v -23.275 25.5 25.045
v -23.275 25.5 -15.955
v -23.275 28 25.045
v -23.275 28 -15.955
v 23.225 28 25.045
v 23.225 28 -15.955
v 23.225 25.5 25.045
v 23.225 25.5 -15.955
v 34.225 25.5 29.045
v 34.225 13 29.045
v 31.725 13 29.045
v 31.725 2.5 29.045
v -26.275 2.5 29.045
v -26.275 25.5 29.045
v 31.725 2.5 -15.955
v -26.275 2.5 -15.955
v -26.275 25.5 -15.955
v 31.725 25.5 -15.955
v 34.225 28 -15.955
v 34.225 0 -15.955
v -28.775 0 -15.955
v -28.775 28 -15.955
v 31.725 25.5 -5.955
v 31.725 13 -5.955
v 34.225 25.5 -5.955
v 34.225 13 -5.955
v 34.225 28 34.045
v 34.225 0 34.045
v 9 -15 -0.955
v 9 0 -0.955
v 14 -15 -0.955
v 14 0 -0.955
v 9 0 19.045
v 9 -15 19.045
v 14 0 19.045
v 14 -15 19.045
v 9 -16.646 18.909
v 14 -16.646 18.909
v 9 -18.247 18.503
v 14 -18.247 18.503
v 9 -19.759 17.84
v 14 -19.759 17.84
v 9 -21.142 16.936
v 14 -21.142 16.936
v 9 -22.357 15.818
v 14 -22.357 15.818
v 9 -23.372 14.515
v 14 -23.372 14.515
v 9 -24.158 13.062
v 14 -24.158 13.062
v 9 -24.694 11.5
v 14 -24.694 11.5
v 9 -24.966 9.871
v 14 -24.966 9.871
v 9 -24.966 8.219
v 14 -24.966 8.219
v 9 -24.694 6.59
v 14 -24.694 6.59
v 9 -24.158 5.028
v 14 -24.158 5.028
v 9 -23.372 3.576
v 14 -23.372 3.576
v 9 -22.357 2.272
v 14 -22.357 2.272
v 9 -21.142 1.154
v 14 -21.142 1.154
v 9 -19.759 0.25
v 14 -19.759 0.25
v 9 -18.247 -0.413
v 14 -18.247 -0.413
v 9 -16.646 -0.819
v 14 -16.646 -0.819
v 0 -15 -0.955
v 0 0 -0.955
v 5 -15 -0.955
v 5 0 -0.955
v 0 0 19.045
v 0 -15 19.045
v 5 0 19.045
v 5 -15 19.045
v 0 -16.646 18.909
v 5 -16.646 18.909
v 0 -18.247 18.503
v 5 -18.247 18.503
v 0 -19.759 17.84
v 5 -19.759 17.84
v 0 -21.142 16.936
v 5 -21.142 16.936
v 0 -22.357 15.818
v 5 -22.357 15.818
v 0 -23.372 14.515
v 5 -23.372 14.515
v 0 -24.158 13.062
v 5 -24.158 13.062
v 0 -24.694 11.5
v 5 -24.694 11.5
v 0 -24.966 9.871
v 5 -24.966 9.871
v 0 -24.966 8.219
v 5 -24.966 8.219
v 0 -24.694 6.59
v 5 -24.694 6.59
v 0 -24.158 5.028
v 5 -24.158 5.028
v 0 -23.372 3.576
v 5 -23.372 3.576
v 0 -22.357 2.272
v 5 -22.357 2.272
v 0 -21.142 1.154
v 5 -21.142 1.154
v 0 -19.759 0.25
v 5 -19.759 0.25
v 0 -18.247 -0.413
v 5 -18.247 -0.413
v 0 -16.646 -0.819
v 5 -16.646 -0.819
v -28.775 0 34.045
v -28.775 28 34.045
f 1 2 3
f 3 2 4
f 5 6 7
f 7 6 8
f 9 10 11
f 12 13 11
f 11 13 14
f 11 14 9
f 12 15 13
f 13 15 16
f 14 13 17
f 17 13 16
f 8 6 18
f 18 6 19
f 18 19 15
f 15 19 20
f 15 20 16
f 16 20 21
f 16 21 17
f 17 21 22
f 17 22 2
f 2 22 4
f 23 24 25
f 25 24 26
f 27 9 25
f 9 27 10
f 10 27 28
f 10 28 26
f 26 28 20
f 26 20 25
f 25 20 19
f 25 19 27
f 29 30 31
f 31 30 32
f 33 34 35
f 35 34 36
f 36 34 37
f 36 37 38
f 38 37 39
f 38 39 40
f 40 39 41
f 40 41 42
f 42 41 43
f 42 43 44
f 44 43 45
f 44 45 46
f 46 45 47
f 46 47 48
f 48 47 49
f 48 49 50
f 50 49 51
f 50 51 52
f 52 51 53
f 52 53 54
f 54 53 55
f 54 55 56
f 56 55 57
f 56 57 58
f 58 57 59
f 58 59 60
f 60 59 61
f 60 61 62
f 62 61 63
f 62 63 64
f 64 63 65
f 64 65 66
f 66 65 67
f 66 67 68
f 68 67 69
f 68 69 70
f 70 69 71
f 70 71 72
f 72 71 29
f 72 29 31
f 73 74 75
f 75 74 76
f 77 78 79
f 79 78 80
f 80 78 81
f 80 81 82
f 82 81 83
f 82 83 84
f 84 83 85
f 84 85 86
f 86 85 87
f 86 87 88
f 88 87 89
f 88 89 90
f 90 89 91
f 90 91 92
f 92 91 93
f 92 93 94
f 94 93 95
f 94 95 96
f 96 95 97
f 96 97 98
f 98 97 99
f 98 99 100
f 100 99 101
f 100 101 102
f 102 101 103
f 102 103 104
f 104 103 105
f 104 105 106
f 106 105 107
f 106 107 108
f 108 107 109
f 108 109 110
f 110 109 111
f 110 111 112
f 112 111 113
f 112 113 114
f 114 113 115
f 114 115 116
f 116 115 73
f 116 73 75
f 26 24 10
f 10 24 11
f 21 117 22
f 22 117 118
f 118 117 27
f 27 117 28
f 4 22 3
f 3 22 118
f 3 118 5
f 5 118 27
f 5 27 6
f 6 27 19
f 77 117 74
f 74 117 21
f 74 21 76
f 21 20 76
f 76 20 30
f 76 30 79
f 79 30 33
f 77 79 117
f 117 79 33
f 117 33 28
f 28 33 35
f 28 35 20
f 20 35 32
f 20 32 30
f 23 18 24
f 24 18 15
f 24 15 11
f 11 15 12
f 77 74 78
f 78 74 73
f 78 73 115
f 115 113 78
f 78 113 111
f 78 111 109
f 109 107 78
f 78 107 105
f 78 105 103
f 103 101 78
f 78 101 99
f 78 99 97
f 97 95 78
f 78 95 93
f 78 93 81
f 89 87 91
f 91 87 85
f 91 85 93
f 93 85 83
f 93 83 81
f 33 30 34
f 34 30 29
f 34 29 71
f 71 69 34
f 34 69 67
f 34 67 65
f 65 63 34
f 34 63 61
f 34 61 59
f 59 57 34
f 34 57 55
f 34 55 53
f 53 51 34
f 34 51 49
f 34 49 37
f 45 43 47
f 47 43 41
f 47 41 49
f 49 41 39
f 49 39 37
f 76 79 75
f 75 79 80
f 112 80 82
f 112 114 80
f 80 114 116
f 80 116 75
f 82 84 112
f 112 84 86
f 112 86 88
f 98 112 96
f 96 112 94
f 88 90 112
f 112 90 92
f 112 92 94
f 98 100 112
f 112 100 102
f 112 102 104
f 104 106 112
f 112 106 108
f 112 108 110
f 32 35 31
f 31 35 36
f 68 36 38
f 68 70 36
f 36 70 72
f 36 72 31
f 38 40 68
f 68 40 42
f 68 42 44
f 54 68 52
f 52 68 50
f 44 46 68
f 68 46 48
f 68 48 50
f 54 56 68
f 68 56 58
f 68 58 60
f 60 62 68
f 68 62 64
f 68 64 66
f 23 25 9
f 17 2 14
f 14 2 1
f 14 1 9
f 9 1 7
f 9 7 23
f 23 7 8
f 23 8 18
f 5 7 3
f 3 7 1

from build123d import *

# Parameters (mm, degrees)
SKETCH1_W            = 63
SKETCH1_H            = 50
BOSS_EXTRUDE1_DEPTH  = 28
CUT_EXTRUDE1_START   = -5
SKETCH2_W            = 60
SKETCH2_H            = 20
CUT_EXTRUDE1_DEPTH   = 62.748305375
CUT_EXTRUDE2_REACH   = 57.807
SKETCH3_W            = 40
SKETCH3_H            = 35
CUT_EXTRUDE3_REACH   = 57.807
SKETCH4_W            = 23
SKETCH4_H            = 25
SKETCH5_W            = 2.5
SKETCH5_H            = 25.5
BOSS_EXTRUDE2_DEPTH  = 35
SKETCH6_W            = 30
SKETCH6_H            = 15
CUT_EXTRUDE4_DEPTH   = 2.5
SKETCH7_W            = 2.5
SKETCH7_H            = 10.5
BOSS_EXTRUDE3_DEPTH  = 25
SKETCH8_W            = 5
SKETCH8_H            = 15
BOSS_EXTRUDE4_DEPTH  = 2.5
SKETCH9_W            = 10
SKETCH9_H            = 5.5
BOSS_EXTRUDE5_DEPTH  = 2.5
BOSS_EXTRUDE6_DEPTH  = 20
CUT_EXTRUDE6_START   = -5
CUT_EXTRUDE6_DEPTH   = 4
CUT_EXTRUDE8_START   = -5
CUT_EXTRUDE8_DEPTH   = 3
CUT_EXTRUDE9_DEPTH   = 64.548692085
SKETCH16_W           = 60.5
SKETCH16_H           = 5.5
CUT_EXTRUDE10_DEPTH  = 9
SKETCH17_W           = 10
SKETCH17_H           = 5.5
CUT_EXTRUDE11_DEPTH  = 18.5
SKETCH18_W           = 4.5
SKETCH18_H           = 5.5
BOSS_EXTRUDE7_DEPTH  = 34
SKETCH23_W           = 58
SKETCH23_H           = 45
CUT_EXTRUDE14_DEPTH  = 23
SKETCH24_W           = 2.5
SKETCH24_H           = 35
CUT_EXTRUDE15_DEPTH  = 3
BOSS_EXTRUDE9_START  = 56
SKETCH25_W           = 44
SKETCH25_H           = 2.5
BOSS_EXTRUDE9_DEPTH  = 3
SKETCH26_W           = 10
SKETCH26_H           = 20
BOSS_EXTRUDE10_DEPTH = 2.5
SKETCH27_W           = 44
SKETCH27_H           = 2.5
BOSS_EXTRUDE11_DEPTH = 6.5
SKETCH28_W           = 46.5
SKETCH28_H           = 2.5
BOSS_EXTRUDE12_DEPTH = 7
SKETCH29_W           = 46.5
SKETCH29_H           = 2.5
CUT_EXTRUDE16_DEPTH  = 4


with BuildPart() as part:
    # Sketch1 → Boss-Extrude1 (new body)
    with BuildSketch(Plane(origin=(0, 0, 0), x_dir=(1, 0, 0), z_dir=(0, 1, 0))):
        with Locations((2.724790291, -9.045064868)):
            Rectangle(SKETCH1_W, SKETCH1_H)
    extrude(amount=BOSS_EXTRUDE1_DEPTH)

    # Sketch2 → Cut-Extrude1 (cut, through all)
    with BuildSketch(Plane.XY.offset(34.045064868).offset(CUT_EXTRUDE1_START)):
        with Locations((1.724790291, 12.5)):
            Rectangle(SKETCH2_W, SKETCH2_H)
    extrude(amount=-CUT_EXTRUDE1_DEPTH, mode=Mode.SUBTRACT)

    # Cut-Extrude2: up to this face of the body (flat: up to its plane)
    cut_extrude2_end = Plane(part.part.faces().sort_by_distance((1.724790291, 2.5, 6.545064868))[0])
    # Sketch3 → Cut-Extrude2 (cut, up to the picked face)
    with BuildSketch(Plane(origin=(0, 28, 0), x_dir=(1, 0, 0), z_dir=(0, 1, 0)), mode=Mode.PRIVATE) as cut_extrude2_sk1:
        with Locations((-8.775209709, -1.545064868)):
            Rectangle(SKETCH3_W, SKETCH3_H)
    cut_extrude2_tool1 = split(extrude(cut_extrude2_sk1.sketch, amount=-CUT_EXTRUDE2_REACH, mode=Mode.PRIVATE), bisect_by=cut_extrude2_end, keep=Keep.BOTH, mode=Mode.PRIVATE)
    add(cut_extrude2_tool1.solids().sort_by(Axis((-8.77521, 28, 1.545065), (0, -1, 0)))[0], mode=Mode.SUBTRACT)

    # Cut-Extrude3: up to this face of the body (flat: up to its plane)
    cut_extrude3_end = Plane(part.part.faces().sort_by_distance((1.529988083, 2.5, 6.512866155))[0])
    # Sketch4 → Cut-Extrude3 (cut, up to the picked face)
    with BuildSketch(Plane(origin=(0, 28, 0), x_dir=(1, 0, 0), z_dir=(0, 1, 0)), mode=Mode.PRIVATE) as cut_extrude3_sk1:
        with Locations((22.724790291, -6.545064868)):
            Rectangle(SKETCH4_W, SKETCH4_H)
    cut_extrude3_tool1 = split(extrude(cut_extrude3_sk1.sketch, amount=-CUT_EXTRUDE3_REACH, mode=Mode.PRIVATE), bisect_by=cut_extrude3_end, keep=Keep.BOTH, mode=Mode.PRIVATE)
    add(cut_extrude3_tool1.solids().sort_by(Axis((22.72479, 28, 6.545065), (0, -1, 0)))[0], mode=Mode.SUBTRACT)

    # Sketch5 → Boss-Extrude2 (add)
    with BuildSketch(Plane(origin=(0, 0, 19.045064868), x_dir=(-1, 0, 0), z_dir=(0, 0, -1))):
        with Locations((27.525209709, 15.25)):
            Rectangle(SKETCH5_W, SKETCH5_H)
    extrude(amount=BOSS_EXTRUDE2_DEPTH)

    # Sketch6 → Cut-Extrude4 (cut)
    with BuildSketch(Plane(origin=(34.224790291, 0, 0), x_dir=(0, 0, -1), z_dir=(1, 0, 0))):
        with Locations((-19.045064868, 20.5)):
            Rectangle(SKETCH6_W, SKETCH6_H)
    extrude(amount=-CUT_EXTRUDE4_DEPTH, mode=Mode.SUBTRACT)

    # Sketch7 → Boss-Extrude3 (add)
    with BuildSketch(Plane(origin=(0, 0, 19.045064868), x_dir=(-1, 0, 0), z_dir=(0, 0, -1))):
        with Locations((-32.974790291, 7.75)):
            Rectangle(SKETCH7_W, SKETCH7_H)
    extrude(amount=BOSS_EXTRUDE3_DEPTH)

    # Sketch8 → Boss-Extrude4 (add)
    with BuildSketch(Plane(origin=(31.724790291, 0, 0), x_dir=(0, 0, -1), z_dir=(1, 0, 0))):
        with Locations((-31.545064868, 20.5)):
            Rectangle(SKETCH8_W, SKETCH8_H)
    extrude(amount=BOSS_EXTRUDE4_DEPTH)

    # Sketch9 → Boss-Extrude5 (add)
    with BuildSketch(Plane(origin=(31.724790291, 0, 0), x_dir=(0, 0, -1), z_dir=(1, 0, 0))):
        with Locations((-24.045064868, 25.25)):
            Rectangle(SKETCH9_W, SKETCH9_H)
    extrude(amount=BOSS_EXTRUDE5_DEPTH)

    # Sketch11 → Boss-Extrude6 (add)
    with BuildSketch(Plane(origin=(0, 0, 0), x_dir=(0, 0, -1), z_dir=(1, 0, 0))):
        with BuildLine():
            Line((0.954935132, 0), (-19.045064868, 0))
            Line((-19.045064868, 0), (-19.045064868, -15))
            ThreePointArc((-19.045064868, -15), (-9.045064868, -25), (0.954935132, -15))
            Line((0.954935132, -15), (0.954935132, 0))
        make_face()
    extrude(amount=BOSS_EXTRUDE6_DEPTH)

    # Sketch12 → Cut-Extrude6 (cut)
    with BuildSketch(Plane.ZY.offset(CUT_EXTRUDE6_START)):
        with BuildLine():
            Line((19.045064868, -15), (19.045064868, 0))
            Line((19.045064868, 0), (-0.954935132, 0))
            Line((-0.954935132, 0), (-0.954935132, -15))
            ThreePointArc((-0.954935132, -15), (9.045064868, -25), (19.045064868, -15))
        make_face()
    extrude(amount=-CUT_EXTRUDE6_DEPTH, mode=Mode.SUBTRACT)

    # Sketch14 → Cut-Extrude8 (cut)
    with BuildSketch(Plane.ZY.offset(-9).offset(CUT_EXTRUDE8_START)):
        with BuildLine():
            Line((19.045064868, -15), (19.045064868, 0))
            Line((19.045064868, 0), (-0.954935132, 0))
            Line((-0.954935132, 0), (-0.954935132, -15))
            ThreePointArc((-0.954935132, -15), (9.045064868, -25), (19.045064868, -15))
        make_face()
    extrude(amount=-CUT_EXTRUDE8_DEPTH, mode=Mode.SUBTRACT)

    # Sketch15 → Cut-Extrude9 (cut, through all)
    with BuildSketch(Plane.ZY.offset(-17)):
        with BuildLine():
            Line((19.045064868, -15), (19.045064868, 0))
            Line((19.045064868, 0), (-0.954935132, 0))
            Line((-0.954935132, 0), (-0.954935132, -15))
            ThreePointArc((-0.954935132, -15), (9.045064868, -25), (19.045064868, -15))
        make_face()
    extrude(amount=-CUT_EXTRUDE9_DEPTH, mode=Mode.SUBTRACT)

    # Sketch16 → Cut-Extrude10 (cut)
    with BuildSketch(Plane(origin=(0, 0, 19.045064868), x_dir=(-1, 0, 0), z_dir=(0, 0, -1))):
        with Locations((-3.974790291, 25.25)):
            Rectangle(SKETCH16_W, SKETCH16_H)
    extrude(amount=-CUT_EXTRUDE10_DEPTH, mode=Mode.SUBTRACT)

    # Sketch17 → Cut-Extrude11 (cut)
    with BuildSketch(Plane.ZY.offset(-11.224790291)):
        with Locations((-10.954935132, 25.25)):
            Rectangle(SKETCH17_W, SKETCH17_H)
    extrude(amount=-CUT_EXTRUDE11_DEPTH, mode=Mode.SUBTRACT)

    # Sketch18 → Boss-Extrude7 (add)
    with BuildSketch(Plane.XY.offset(-5.954935132)):
        with Locations((31.974790291, 25.25)):
            Rectangle(SKETCH18_W, SKETCH18_H)
    extrude(amount=BOSS_EXTRUDE7_DEPTH)

    # Sketch23 → Cut-Extrude14 (cut)
    with BuildSketch(Plane(origin=(0, 2.5, 0), x_dir=(1, 0, 0), z_dir=(0, 1, 0))):
        with Locations((2.724790291, -6.545064868)):
            Rectangle(SKETCH23_W, SKETCH23_H)
    extrude(amount=CUT_EXTRUDE14_DEPTH, mode=Mode.SUBTRACT)

    # Sketch24 → Cut-Extrude15 (cut)
    with BuildSketch(Plane.XZ.offset(-22.5)):
        with Locations((32.974790291, 11.545064868)):
            Rectangle(SKETCH24_W, SKETCH24_H)
    extrude(amount=-CUT_EXTRUDE15_DEPTH, mode=Mode.SUBTRACT)

    # Sketch25 → Boss-Extrude9 (add)
    with BuildSketch(Plane.ZY.offset(-29.724790291).offset(BOSS_EXTRUDE9_START)):
        with Locations((6.045064868, 26.75)):
            Rectangle(SKETCH25_W, SKETCH25_H)
    extrude(amount=-BOSS_EXTRUDE9_DEPTH)

    # Sketch26 → Boss-Extrude10 (add)
    with BuildSketch(Plane.ZY.offset(28.775209709)):
        with Locations((24.045064868, 12.5)):
            Rectangle(SKETCH26_W, SKETCH26_H)
    extrude(amount=-BOSS_EXTRUDE10_DEPTH)

    # Sketch27 → Boss-Extrude11 (add)
    with BuildSketch(Plane.ZY.offset(-29.724790291)):
        with Locations((6.045064868, 26.75)):
            Rectangle(SKETCH27_W, SKETCH27_H)
    extrude(amount=BOSS_EXTRUDE11_DEPTH)

    # Sketch28 → Boss-Extrude12 (add)
    with BuildSketch(Plane(origin=(0, 0, 28.045064868), x_dir=(-1, 0, 0), z_dir=(0, 0, -1))):
        with Locations((0.025209709, 26.75)):
            Rectangle(SKETCH28_W, SKETCH28_H)
    extrude(amount=BOSS_EXTRUDE12_DEPTH)

    # Sketch29 → Cut-Extrude16 (cut)
    with BuildSketch(Plane(origin=(0, 0, 21.045064868), x_dir=(-1, 0, 0), z_dir=(0, 0, -1))):
        with Locations((0.025209709, 26.75)):
            Rectangle(SKETCH29_W, SKETCH29_H)
    extrude(amount=-CUT_EXTRUDE16_DEPTH, mode=Mode.SUBTRACT)


solid = part.part
